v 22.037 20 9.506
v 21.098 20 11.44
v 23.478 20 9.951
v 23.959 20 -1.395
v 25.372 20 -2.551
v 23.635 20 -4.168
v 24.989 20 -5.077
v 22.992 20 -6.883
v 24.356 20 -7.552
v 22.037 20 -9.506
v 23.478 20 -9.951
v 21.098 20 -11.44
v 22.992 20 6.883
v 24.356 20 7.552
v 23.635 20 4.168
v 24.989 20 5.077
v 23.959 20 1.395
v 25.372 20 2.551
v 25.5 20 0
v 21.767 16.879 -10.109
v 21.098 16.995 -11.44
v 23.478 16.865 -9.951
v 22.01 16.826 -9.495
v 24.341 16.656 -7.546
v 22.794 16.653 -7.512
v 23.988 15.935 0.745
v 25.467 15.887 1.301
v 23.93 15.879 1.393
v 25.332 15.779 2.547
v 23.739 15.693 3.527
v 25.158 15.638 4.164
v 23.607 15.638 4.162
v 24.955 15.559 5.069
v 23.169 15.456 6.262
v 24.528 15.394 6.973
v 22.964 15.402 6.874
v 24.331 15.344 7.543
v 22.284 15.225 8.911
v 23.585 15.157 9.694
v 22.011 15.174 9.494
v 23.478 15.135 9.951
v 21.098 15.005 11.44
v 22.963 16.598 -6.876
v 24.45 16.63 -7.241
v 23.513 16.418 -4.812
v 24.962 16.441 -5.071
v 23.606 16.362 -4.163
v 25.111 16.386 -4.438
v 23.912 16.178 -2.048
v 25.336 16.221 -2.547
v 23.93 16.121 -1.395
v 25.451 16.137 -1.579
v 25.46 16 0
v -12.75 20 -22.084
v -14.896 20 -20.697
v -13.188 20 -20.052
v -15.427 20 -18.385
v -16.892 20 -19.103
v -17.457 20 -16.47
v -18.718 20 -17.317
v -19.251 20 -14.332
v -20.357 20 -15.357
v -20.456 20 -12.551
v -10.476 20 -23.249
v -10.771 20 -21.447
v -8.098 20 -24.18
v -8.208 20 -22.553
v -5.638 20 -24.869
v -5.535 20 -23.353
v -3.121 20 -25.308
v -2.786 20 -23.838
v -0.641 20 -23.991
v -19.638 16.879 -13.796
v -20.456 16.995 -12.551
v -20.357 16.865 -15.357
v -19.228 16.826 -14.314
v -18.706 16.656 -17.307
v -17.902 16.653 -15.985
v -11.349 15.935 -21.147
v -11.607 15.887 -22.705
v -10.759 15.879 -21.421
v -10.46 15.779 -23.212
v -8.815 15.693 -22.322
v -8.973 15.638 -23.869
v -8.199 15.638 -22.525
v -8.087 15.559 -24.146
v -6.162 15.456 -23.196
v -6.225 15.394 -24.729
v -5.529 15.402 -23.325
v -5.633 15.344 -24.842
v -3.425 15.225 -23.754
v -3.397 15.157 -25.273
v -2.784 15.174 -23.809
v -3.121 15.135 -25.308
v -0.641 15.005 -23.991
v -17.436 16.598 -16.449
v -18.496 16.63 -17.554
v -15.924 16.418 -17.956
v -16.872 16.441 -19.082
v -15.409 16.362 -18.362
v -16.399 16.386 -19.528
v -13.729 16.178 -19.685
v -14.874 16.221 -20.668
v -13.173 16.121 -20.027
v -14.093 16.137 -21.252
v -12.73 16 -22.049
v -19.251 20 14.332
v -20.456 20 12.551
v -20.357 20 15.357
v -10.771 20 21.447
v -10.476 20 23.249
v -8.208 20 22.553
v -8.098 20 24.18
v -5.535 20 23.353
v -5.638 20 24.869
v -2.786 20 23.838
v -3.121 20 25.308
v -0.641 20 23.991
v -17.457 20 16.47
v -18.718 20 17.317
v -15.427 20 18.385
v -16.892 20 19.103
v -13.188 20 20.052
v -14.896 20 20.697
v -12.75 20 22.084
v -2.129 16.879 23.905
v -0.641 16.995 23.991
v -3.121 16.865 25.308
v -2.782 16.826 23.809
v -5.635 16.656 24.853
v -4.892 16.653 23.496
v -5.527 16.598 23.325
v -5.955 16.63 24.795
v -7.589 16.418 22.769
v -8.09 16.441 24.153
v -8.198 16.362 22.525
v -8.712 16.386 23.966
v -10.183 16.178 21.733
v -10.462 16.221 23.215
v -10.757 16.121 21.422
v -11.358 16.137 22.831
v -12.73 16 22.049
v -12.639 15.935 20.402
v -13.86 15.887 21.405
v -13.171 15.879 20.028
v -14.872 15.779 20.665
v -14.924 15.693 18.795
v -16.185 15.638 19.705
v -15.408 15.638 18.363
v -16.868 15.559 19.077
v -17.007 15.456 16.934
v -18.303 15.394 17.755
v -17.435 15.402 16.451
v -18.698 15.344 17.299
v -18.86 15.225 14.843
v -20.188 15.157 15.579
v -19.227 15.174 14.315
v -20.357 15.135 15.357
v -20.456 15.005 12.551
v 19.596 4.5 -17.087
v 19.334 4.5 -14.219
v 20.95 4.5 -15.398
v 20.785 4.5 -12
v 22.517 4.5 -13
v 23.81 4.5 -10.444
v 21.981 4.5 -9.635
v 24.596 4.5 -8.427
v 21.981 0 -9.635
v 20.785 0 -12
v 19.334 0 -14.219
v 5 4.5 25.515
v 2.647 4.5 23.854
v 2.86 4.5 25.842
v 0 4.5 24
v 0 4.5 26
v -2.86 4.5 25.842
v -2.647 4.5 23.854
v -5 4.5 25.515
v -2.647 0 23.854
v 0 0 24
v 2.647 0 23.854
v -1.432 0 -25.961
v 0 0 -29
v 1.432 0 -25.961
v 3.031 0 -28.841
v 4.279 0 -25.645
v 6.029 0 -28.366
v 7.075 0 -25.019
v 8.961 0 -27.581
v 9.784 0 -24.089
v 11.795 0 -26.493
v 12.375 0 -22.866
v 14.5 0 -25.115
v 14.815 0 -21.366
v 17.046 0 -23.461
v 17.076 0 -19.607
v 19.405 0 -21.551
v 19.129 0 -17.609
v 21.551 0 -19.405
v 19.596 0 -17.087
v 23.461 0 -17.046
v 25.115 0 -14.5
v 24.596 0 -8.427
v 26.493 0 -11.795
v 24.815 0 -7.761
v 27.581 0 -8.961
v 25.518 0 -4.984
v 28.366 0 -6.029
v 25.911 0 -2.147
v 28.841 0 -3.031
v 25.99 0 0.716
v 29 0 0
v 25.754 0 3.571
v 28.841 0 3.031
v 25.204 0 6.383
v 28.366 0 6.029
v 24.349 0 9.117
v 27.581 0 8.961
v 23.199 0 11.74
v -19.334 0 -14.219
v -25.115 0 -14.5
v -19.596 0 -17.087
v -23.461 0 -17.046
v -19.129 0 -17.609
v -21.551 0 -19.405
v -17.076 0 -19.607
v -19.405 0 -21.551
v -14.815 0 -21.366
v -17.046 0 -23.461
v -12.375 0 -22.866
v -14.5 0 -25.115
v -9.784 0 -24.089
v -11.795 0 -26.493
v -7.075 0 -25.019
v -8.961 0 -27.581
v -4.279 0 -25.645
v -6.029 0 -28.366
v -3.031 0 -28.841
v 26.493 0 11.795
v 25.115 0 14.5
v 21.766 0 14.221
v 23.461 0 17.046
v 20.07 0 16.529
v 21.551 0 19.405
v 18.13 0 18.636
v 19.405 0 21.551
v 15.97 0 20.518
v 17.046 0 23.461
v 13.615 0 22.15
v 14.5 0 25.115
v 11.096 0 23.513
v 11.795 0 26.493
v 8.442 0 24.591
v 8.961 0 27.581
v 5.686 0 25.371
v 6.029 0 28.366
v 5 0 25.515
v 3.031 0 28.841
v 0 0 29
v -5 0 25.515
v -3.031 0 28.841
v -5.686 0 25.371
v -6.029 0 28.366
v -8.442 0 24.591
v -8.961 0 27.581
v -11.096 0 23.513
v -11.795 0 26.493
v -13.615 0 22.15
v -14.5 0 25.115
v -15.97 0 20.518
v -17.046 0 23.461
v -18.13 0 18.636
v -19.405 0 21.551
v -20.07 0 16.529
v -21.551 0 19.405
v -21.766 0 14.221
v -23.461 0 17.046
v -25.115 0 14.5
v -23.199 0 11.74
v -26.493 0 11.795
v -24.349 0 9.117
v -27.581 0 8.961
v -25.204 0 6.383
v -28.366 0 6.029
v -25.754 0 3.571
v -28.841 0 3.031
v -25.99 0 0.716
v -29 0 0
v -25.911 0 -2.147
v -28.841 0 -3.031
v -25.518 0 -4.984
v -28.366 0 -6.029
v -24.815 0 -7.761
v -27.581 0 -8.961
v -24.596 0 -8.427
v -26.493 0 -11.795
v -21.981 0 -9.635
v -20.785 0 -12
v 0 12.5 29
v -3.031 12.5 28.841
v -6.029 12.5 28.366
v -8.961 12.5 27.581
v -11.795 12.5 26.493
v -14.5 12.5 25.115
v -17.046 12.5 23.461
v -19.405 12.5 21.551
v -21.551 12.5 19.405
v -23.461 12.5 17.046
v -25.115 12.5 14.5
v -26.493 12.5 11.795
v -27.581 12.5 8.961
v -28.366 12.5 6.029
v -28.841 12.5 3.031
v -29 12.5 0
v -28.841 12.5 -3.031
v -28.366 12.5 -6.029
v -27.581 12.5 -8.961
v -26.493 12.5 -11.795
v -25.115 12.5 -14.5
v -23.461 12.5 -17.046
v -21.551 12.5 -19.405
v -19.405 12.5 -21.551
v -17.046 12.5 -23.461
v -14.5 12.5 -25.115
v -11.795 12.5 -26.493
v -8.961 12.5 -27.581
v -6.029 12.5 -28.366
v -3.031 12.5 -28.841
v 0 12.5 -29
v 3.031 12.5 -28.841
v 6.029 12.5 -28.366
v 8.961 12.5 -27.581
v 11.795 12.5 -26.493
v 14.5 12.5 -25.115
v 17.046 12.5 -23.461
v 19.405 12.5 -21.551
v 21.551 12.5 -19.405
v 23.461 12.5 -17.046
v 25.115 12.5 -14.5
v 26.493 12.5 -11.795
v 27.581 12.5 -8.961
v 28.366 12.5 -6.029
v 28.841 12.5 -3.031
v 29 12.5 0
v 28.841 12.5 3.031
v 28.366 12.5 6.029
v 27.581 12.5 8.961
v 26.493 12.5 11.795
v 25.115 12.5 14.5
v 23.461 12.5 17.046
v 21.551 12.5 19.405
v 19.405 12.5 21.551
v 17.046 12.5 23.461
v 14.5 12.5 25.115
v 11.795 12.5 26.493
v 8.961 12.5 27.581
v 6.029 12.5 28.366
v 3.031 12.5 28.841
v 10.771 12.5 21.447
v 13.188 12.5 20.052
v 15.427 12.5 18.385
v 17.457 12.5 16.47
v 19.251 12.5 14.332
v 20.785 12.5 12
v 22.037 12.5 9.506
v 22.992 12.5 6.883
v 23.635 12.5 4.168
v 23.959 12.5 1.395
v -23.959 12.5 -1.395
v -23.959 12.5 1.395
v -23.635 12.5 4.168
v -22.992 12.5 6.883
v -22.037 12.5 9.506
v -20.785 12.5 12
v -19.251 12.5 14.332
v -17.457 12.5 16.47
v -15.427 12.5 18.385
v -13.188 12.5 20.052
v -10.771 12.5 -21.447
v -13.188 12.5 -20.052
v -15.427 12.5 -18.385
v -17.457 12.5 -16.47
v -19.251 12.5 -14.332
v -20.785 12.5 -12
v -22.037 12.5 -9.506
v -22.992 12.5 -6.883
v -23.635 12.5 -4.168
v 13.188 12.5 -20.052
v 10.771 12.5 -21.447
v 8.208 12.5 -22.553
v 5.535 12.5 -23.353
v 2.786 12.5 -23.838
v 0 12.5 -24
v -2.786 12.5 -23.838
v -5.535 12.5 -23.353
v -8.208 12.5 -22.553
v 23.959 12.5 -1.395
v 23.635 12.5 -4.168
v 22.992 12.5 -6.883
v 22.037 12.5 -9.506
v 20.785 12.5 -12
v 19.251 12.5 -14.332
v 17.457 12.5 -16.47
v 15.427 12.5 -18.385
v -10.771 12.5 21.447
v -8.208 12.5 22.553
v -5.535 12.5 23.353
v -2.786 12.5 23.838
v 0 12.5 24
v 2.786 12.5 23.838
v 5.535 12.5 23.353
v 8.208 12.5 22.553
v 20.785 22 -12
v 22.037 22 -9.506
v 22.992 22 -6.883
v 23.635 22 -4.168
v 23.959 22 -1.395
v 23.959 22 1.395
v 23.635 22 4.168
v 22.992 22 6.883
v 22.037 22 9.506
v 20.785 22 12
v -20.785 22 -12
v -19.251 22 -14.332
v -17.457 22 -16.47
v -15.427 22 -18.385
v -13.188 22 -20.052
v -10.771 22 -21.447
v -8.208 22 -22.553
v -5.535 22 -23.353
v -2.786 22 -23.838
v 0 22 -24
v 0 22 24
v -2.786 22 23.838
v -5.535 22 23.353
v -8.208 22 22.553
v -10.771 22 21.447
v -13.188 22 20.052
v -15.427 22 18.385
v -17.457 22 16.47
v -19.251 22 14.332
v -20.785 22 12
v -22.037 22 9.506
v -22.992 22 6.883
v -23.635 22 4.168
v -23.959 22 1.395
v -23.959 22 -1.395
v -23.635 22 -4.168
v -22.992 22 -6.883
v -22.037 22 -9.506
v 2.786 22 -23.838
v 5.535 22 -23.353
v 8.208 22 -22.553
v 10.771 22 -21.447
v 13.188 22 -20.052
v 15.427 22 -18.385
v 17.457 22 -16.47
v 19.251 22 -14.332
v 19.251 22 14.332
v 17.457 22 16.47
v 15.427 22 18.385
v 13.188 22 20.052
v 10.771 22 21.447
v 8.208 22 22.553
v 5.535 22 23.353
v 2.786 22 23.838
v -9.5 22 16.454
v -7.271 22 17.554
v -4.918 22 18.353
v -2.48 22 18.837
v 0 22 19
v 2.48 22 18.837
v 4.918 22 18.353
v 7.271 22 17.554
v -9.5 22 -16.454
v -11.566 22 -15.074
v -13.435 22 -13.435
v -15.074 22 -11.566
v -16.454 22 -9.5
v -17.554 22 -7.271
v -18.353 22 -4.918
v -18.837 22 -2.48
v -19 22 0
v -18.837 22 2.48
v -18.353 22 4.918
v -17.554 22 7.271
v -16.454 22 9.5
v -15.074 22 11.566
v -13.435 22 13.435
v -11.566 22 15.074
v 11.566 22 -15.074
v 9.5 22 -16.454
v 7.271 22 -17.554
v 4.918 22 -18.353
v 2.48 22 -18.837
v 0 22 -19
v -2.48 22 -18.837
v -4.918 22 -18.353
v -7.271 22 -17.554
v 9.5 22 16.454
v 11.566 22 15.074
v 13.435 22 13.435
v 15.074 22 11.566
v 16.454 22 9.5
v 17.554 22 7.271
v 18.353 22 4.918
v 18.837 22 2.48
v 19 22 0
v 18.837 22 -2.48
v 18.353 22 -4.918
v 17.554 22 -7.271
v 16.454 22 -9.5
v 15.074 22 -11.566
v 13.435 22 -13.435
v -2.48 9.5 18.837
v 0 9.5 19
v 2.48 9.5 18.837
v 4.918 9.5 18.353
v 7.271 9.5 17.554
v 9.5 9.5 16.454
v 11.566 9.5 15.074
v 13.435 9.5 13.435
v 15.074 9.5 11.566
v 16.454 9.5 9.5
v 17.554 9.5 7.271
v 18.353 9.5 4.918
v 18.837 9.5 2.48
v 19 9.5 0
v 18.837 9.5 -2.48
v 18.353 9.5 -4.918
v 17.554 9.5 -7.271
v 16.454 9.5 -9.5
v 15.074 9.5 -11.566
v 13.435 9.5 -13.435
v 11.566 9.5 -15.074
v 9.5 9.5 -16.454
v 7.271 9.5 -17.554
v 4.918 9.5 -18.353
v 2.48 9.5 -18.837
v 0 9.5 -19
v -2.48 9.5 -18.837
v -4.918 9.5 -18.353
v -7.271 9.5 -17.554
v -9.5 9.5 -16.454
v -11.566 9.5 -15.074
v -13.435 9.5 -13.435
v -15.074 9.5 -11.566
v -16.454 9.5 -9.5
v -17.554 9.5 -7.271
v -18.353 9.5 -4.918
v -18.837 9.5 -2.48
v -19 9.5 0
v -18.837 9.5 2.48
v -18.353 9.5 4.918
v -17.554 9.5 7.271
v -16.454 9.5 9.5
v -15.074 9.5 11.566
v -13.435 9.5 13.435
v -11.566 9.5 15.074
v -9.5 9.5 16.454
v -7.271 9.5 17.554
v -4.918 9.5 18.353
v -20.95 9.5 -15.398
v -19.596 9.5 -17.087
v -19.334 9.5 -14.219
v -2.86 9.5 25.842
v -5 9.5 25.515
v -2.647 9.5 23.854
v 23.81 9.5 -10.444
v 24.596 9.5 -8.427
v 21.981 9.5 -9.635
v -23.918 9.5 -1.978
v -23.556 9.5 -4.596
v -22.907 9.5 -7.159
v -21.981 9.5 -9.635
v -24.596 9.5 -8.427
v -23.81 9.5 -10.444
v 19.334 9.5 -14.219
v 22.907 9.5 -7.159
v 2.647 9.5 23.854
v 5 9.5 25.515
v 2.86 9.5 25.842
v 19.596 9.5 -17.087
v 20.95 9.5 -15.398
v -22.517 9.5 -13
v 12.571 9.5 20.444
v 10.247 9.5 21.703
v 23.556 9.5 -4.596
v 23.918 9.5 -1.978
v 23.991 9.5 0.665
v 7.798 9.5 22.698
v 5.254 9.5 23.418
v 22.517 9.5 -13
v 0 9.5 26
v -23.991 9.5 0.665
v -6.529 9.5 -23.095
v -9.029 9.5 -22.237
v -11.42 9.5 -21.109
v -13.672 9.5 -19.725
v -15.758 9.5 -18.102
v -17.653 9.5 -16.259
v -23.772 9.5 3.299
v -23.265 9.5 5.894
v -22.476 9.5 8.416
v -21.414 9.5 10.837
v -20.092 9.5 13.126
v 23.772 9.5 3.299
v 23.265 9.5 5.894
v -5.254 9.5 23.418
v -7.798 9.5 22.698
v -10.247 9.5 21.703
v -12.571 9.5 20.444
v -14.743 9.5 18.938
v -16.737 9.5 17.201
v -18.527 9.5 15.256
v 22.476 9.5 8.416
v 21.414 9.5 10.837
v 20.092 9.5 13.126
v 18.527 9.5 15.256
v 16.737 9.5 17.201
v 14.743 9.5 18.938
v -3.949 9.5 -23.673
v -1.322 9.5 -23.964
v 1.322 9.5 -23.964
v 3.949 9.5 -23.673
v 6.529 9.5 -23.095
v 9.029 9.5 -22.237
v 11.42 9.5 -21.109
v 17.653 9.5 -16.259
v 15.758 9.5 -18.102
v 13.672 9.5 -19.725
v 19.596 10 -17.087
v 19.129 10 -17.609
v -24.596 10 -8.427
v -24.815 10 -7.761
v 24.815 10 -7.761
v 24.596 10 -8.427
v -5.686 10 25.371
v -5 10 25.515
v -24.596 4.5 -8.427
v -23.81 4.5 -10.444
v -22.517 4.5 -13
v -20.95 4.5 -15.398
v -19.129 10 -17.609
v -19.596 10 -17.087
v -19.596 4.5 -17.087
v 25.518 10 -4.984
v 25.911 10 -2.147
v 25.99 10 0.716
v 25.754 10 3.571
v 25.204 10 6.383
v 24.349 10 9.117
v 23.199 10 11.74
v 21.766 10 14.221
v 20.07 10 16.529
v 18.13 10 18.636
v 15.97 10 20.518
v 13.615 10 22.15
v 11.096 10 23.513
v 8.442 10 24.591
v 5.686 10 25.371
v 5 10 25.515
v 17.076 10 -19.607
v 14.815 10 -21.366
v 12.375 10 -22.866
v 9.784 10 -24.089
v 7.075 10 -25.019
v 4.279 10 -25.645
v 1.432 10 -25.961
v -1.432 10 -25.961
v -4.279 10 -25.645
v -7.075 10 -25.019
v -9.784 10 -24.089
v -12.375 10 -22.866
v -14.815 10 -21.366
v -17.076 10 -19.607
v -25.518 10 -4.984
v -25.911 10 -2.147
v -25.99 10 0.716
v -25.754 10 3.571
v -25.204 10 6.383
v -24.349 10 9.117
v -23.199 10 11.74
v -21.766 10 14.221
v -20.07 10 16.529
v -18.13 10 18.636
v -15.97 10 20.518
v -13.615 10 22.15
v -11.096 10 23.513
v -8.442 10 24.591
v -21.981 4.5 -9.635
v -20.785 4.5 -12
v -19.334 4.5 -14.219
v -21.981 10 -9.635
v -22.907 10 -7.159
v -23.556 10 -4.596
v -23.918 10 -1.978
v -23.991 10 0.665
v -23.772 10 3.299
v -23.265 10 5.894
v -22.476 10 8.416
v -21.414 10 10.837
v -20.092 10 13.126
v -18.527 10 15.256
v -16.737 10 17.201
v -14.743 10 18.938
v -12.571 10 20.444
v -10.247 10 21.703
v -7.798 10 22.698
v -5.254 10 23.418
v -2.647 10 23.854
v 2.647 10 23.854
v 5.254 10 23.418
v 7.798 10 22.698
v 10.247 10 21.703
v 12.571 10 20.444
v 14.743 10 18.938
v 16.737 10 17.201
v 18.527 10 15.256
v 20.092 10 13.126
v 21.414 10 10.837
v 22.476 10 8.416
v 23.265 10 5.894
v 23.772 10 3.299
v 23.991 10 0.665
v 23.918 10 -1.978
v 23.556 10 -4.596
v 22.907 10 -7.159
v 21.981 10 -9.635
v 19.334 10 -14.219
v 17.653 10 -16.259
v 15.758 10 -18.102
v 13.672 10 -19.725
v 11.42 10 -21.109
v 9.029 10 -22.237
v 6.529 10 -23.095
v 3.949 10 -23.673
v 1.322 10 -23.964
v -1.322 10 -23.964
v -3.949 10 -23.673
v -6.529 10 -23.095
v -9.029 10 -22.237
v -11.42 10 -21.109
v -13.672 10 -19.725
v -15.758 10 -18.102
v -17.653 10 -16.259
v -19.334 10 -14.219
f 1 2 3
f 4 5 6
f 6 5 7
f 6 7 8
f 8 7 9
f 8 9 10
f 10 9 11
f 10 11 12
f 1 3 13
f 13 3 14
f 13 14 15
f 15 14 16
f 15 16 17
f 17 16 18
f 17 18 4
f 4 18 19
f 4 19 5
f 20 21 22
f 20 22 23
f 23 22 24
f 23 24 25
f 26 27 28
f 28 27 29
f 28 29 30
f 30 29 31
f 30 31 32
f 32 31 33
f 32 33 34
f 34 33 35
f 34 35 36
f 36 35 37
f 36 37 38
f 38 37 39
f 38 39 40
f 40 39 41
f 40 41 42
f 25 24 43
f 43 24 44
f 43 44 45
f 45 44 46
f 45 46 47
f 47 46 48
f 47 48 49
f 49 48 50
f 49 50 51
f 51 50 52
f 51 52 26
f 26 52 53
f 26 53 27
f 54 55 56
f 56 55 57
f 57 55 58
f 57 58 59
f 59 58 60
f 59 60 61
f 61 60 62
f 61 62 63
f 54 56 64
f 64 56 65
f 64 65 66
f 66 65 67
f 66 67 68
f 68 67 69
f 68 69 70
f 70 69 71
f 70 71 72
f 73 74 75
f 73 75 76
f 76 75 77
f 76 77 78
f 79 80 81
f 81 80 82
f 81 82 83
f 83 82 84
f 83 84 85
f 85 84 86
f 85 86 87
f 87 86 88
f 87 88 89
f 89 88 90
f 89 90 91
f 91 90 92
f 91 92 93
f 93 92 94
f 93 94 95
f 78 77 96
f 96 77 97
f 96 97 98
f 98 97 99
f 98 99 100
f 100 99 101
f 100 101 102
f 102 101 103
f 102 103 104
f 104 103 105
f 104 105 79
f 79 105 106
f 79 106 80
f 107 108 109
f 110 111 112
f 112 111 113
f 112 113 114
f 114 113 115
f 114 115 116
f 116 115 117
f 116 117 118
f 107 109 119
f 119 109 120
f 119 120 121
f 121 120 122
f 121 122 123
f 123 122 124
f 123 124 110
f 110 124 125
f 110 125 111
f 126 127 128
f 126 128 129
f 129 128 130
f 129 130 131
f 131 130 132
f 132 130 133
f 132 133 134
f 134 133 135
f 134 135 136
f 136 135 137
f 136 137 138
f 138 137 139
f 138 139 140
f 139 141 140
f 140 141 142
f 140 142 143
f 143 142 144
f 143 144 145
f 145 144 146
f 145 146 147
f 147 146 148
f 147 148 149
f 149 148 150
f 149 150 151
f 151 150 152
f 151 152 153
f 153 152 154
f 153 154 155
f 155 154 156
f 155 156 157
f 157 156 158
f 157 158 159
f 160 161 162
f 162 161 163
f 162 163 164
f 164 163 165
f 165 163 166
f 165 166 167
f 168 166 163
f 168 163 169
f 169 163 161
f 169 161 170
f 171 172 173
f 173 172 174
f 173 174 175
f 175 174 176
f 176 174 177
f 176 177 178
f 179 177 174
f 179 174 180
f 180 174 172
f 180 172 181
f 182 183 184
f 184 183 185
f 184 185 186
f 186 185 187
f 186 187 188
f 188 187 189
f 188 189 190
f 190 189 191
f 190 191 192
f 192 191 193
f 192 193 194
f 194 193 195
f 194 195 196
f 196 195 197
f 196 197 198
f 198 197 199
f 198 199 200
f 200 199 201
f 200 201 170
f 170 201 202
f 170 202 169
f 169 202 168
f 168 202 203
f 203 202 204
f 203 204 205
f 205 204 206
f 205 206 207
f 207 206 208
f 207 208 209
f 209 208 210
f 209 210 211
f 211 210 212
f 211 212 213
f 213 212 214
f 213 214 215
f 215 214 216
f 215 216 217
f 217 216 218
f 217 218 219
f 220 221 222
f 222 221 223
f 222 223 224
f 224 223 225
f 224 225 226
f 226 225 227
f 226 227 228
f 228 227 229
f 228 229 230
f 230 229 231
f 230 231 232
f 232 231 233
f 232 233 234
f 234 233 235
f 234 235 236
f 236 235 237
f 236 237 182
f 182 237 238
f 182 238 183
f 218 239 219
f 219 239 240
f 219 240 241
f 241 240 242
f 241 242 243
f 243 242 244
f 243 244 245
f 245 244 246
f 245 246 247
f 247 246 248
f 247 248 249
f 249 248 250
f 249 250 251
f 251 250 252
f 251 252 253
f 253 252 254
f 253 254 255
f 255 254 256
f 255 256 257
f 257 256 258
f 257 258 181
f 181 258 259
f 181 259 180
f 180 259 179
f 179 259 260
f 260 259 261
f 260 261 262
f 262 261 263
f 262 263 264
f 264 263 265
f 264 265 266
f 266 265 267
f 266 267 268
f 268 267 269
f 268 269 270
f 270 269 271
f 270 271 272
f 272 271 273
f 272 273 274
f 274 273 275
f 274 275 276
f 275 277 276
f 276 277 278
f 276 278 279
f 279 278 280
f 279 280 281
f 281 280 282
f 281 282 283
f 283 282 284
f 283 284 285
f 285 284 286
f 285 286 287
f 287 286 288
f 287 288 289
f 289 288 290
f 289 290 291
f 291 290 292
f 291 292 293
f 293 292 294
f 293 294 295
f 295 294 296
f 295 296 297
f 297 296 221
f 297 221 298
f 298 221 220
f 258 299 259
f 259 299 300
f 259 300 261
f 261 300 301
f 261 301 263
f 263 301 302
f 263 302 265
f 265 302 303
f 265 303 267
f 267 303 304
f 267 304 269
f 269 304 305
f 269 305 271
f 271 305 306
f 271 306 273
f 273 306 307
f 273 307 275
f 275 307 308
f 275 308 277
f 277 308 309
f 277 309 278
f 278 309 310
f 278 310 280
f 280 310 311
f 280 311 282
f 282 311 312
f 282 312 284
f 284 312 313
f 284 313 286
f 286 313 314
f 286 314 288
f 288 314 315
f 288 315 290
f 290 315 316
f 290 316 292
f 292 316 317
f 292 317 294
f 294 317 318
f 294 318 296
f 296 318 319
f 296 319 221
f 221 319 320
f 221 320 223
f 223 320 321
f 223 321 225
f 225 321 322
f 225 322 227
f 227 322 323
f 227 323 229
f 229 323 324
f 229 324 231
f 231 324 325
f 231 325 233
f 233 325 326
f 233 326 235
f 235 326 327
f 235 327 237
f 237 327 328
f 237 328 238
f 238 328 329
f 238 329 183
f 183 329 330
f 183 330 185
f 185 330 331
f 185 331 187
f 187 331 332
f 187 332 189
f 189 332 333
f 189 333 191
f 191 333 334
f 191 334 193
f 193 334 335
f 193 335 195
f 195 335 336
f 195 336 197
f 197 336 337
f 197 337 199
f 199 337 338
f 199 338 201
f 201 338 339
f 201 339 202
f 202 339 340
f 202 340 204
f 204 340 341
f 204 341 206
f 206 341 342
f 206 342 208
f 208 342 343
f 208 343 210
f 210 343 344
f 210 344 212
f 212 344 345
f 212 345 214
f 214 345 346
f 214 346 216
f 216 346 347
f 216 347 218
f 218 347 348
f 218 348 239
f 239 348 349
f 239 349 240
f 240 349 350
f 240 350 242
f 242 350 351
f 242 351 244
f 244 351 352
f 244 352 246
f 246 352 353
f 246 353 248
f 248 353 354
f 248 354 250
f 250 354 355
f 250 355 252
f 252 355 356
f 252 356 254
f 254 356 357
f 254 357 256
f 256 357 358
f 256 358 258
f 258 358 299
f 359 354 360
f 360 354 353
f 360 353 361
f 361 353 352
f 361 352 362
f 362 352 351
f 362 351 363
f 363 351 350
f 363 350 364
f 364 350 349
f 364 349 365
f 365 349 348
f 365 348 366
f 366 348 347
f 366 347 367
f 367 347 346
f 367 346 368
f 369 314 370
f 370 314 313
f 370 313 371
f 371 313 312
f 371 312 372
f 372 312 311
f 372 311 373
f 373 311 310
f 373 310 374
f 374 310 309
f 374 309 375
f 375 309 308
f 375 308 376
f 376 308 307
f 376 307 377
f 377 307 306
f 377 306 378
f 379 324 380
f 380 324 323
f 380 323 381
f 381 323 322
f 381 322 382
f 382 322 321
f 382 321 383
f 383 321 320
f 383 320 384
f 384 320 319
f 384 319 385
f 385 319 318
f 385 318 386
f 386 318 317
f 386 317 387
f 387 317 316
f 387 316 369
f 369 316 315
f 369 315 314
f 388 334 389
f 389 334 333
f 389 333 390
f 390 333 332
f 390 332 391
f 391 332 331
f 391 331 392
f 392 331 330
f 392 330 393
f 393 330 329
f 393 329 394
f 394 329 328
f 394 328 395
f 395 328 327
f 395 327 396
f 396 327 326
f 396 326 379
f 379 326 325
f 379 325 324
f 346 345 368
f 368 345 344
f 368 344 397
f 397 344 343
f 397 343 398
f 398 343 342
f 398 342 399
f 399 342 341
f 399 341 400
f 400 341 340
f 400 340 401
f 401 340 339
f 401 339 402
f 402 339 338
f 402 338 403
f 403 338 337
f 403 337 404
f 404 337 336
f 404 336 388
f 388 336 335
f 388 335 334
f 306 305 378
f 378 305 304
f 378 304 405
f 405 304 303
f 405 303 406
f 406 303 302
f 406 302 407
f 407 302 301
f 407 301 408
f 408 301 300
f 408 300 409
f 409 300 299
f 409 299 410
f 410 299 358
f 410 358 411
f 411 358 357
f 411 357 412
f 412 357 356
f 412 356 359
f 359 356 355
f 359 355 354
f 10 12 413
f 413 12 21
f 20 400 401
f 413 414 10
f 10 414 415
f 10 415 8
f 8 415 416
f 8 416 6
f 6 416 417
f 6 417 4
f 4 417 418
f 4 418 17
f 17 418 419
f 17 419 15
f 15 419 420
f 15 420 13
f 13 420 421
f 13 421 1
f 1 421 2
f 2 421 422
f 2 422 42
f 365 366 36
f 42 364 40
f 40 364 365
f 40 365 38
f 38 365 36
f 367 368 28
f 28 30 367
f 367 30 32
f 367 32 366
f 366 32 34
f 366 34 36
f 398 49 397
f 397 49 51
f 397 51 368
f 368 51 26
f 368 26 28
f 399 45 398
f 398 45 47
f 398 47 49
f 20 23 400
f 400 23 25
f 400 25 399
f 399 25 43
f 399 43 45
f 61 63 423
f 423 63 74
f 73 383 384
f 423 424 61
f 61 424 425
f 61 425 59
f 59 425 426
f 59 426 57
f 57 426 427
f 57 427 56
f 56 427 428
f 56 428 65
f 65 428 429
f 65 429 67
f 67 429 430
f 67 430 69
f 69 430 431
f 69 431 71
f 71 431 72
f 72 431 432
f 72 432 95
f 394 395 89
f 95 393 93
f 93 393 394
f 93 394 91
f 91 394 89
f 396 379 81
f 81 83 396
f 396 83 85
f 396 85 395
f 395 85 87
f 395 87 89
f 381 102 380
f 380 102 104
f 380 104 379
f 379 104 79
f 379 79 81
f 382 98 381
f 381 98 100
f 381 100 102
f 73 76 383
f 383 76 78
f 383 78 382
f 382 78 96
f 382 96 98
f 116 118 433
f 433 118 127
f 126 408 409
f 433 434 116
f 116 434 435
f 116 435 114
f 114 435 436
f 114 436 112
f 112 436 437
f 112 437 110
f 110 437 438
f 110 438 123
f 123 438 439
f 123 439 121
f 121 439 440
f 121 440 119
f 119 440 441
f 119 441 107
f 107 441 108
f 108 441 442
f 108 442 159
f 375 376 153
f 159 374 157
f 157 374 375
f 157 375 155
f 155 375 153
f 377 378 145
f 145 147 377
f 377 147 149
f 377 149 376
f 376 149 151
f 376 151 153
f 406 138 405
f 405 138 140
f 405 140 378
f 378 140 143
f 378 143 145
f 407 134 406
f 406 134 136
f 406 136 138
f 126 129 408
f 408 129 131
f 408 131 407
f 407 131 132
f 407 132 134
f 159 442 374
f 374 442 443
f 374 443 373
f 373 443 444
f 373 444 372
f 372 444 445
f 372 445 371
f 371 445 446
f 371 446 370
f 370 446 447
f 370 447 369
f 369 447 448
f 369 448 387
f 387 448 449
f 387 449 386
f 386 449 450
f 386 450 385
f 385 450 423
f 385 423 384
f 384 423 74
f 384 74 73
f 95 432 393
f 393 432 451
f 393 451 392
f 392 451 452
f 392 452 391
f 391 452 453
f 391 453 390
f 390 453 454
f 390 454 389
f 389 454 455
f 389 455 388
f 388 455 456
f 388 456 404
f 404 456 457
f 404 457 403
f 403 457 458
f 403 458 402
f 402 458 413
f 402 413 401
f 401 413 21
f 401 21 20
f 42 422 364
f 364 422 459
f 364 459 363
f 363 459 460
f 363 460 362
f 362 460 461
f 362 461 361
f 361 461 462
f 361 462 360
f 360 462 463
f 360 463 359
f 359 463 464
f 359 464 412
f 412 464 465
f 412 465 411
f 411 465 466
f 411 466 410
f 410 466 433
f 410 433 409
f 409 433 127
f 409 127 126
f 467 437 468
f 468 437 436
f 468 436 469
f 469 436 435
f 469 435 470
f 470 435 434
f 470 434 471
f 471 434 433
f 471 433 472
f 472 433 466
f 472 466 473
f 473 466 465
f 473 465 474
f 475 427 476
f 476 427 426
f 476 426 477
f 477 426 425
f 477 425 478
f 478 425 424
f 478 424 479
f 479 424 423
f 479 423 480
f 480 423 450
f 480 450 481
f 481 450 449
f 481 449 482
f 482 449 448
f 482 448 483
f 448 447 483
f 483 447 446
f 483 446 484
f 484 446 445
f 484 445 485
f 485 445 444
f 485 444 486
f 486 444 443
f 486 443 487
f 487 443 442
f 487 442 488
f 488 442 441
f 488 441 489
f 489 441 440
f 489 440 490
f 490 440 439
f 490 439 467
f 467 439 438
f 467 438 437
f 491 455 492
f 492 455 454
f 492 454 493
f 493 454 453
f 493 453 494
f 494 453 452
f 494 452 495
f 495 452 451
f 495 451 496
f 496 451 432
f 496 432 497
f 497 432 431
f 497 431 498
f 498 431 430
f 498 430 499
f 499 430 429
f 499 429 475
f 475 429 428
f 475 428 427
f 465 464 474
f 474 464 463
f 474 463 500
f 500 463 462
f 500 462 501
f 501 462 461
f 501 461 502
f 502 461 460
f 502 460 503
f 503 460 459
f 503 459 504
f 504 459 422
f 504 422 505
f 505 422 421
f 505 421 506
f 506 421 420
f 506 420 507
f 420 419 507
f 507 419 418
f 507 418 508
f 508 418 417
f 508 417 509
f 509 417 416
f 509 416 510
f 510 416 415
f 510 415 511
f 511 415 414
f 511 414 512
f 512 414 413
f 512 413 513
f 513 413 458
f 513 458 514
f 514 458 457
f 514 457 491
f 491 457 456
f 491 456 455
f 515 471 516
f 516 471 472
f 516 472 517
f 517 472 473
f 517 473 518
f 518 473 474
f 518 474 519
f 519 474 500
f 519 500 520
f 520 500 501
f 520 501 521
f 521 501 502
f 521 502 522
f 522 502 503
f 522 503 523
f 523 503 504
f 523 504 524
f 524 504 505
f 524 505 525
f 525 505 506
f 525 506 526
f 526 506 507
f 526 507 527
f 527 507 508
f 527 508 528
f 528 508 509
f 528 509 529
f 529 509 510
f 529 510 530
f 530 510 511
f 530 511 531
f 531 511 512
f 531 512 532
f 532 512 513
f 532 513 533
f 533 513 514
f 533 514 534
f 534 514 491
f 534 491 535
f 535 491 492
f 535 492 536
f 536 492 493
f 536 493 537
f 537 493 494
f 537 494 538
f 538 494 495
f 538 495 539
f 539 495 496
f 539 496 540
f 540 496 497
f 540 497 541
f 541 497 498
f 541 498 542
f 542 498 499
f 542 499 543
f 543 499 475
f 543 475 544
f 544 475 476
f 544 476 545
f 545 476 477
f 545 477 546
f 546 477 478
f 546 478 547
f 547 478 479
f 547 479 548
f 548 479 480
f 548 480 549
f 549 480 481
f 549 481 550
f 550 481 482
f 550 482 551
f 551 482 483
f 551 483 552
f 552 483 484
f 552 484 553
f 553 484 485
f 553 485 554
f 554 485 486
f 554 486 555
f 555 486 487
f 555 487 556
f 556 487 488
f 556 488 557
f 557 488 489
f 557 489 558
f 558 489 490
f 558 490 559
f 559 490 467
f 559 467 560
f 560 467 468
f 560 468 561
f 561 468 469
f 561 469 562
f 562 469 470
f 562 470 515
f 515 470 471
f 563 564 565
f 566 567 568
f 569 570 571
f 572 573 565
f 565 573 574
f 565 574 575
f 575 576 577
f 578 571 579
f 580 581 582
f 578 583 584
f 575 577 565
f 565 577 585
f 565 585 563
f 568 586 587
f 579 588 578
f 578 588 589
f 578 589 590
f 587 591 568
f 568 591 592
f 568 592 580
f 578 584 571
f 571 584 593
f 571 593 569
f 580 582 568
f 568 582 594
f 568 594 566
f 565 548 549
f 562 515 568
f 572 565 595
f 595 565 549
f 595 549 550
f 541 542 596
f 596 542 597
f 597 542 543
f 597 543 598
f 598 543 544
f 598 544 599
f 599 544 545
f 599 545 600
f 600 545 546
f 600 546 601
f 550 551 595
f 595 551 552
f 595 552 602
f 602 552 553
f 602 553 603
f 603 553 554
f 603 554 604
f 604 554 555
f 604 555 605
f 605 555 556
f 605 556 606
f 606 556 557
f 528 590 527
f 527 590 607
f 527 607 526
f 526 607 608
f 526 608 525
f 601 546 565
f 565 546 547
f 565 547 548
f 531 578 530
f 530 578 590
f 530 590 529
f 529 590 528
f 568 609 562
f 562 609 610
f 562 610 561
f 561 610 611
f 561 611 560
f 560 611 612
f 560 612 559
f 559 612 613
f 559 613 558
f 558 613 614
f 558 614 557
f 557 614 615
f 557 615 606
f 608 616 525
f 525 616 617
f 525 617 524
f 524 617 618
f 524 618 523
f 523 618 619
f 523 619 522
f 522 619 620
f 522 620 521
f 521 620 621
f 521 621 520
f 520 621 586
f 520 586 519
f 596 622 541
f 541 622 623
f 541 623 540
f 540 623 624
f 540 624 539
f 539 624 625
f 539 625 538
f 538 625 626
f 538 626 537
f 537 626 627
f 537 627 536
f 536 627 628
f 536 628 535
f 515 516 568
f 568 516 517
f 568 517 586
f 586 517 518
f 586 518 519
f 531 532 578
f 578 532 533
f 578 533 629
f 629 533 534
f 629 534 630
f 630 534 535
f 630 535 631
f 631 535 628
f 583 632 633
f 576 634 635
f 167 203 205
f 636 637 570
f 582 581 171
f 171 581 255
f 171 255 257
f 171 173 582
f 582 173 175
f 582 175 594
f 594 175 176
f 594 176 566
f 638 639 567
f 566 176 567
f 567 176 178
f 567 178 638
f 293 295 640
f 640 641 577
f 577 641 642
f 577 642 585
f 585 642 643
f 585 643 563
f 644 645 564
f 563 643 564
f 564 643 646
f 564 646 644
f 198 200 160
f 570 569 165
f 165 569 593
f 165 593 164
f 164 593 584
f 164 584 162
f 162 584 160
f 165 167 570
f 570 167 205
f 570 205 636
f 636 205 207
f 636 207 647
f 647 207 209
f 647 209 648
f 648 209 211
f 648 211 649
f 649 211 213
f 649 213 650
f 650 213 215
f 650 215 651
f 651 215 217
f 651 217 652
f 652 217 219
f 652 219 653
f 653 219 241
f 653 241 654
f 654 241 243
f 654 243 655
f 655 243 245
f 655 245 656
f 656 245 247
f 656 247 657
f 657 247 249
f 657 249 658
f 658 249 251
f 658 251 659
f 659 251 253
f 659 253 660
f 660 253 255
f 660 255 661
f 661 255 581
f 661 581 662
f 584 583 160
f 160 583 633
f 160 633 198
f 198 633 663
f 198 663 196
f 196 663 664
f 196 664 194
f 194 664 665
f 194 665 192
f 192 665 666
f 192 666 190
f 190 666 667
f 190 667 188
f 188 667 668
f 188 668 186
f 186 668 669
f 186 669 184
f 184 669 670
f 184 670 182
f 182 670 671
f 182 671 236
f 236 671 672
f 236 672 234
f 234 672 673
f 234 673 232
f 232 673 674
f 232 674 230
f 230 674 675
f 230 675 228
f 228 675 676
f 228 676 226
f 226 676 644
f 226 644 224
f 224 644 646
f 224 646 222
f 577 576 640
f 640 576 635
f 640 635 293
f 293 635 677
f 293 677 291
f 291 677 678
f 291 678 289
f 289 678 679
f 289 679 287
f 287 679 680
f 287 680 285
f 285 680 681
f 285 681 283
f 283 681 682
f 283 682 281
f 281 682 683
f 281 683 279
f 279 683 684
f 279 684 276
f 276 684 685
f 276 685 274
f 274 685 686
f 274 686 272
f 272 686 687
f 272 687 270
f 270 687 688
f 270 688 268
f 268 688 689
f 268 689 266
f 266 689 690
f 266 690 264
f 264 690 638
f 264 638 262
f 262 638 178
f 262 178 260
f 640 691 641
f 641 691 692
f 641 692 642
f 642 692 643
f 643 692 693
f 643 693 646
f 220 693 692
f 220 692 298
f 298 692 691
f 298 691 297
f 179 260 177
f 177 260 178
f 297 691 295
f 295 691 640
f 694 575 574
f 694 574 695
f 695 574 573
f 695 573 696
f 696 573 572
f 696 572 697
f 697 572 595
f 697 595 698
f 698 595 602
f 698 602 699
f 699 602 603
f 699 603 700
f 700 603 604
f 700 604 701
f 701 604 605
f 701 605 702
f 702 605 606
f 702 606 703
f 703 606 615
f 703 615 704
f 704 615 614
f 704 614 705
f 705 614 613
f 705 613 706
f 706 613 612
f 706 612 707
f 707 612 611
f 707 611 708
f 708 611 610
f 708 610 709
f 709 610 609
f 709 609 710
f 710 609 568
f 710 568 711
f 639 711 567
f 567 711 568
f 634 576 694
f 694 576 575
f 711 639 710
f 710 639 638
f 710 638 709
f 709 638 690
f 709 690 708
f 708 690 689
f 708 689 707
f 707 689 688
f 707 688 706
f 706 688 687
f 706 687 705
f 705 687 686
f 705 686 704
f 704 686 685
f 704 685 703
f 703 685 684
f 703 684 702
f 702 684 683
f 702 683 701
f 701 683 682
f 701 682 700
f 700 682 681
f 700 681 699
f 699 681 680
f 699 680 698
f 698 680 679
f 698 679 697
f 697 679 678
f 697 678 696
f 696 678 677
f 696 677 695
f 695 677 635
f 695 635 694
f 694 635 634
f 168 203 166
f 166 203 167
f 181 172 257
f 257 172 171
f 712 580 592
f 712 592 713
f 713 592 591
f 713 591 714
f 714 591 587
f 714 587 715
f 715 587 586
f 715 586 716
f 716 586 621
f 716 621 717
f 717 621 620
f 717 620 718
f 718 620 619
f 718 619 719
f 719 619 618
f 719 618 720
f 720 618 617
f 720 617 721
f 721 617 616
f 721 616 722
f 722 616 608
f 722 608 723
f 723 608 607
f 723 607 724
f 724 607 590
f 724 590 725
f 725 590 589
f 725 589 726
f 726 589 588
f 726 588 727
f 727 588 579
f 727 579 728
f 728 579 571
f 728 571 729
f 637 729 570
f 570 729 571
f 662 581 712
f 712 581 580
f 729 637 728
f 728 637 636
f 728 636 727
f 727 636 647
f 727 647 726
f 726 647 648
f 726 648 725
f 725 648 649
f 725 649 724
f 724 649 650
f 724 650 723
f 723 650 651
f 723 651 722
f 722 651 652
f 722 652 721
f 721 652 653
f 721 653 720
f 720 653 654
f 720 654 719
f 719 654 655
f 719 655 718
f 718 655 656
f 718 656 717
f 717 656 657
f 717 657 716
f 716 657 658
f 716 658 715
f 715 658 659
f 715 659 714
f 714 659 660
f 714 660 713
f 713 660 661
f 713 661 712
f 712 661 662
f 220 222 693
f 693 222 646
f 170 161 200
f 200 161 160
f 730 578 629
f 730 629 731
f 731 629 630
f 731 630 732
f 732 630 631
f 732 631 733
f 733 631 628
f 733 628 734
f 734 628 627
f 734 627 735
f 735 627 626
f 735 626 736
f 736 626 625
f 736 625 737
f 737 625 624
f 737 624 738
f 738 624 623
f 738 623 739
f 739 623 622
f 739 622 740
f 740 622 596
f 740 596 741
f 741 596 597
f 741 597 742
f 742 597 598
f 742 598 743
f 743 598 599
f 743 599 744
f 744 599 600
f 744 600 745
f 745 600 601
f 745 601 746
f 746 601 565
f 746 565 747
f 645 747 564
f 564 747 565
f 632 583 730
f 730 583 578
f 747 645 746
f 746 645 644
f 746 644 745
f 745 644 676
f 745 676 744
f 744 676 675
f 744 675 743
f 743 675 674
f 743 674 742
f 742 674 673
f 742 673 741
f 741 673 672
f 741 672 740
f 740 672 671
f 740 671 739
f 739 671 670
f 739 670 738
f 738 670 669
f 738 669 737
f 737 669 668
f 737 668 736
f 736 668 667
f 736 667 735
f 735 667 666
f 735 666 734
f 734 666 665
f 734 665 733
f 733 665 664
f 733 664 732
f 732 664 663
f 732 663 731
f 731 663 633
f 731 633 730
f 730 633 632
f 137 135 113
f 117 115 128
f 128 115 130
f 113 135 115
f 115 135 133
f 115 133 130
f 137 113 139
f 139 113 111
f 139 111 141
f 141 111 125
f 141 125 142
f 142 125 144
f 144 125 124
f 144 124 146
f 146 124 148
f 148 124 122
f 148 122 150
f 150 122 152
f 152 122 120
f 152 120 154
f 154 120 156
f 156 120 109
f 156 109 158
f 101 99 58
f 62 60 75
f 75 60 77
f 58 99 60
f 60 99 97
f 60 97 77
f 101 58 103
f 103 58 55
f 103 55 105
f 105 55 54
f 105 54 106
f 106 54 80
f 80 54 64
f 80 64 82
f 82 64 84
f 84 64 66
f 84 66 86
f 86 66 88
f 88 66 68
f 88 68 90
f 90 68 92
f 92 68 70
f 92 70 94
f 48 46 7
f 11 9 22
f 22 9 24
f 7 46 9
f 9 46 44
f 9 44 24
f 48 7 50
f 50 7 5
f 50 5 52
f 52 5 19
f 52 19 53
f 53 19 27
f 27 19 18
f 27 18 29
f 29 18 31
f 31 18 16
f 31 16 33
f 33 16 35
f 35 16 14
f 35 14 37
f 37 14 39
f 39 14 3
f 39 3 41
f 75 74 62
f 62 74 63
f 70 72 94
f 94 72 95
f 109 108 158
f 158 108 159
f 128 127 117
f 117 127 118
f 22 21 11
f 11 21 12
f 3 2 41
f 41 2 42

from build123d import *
from build123d.topology import SkipClean

# Parameters (mm, degrees)
CUT_EXTRUDE_START        = -10
CUT_EXTRUDE_1_DEPTH      = 10
EXTRUDE_1_DEPTH          = 6
PATTERN_CIRCULAR_1_COUNT = 3
SKETCH_4_R               = 42.404307435
SKETCH_4_R_2             = 25.5
CUT_EXTRUDE_2_DEPTH      = 9.5
CHAMFER_START            = 14
CHAMFER_1_DEPTH          = 6


with BuildPart() as part:
    # Эскиз1 → Повернуть1 (revolve)
    with BuildSketch(Plane.XY, mode=Mode.PRIVATE) as revolve_1_sk:
        Polygon((-24, 0), (-24, 4.5), (-26, 4.5), (-26, 9.5), (-19, 9.5), (-19, 22), (-24, 22), (-24, 12.5), (-29, 12.5), (-29, 0), align=None)
    revolve(revolve_1_sk.sketch.rotate(Axis((0, 0, 0), (0, -1, 0)), 270), axis=Axis((0, 0, 0), (0, -1, 0)))

    # Эскиз2 → Вырез-Вытянуть1 (cut)
    with SkipClean():  # the faces are left unmerged after this step: merging them gives an invalid solid
        with BuildSketch(Plane(origin=(0, 0, 0), x_dir=(-1, 0, 0), z_dir=(0, -1, 0)).offset(CUT_EXTRUDE_START)):
            with BuildLine():
                ThreePointArc((24, 0), (17.8818714, -16.007456864), (2.646777063, -23.85360709))
                Line((2.646777063, -23.85360709), (5, -25.514701644))
                ThreePointArc((5, -25.514701644), (20.0748599, -16.522711642), (26, 0))
                ThreePointArc((26, 0), (25.646694472, 4.271658071), (24.596379794, 8.427223803))
                Line((24.596379794, 8.427223803), (21.981218243, 9.63462737))
                ThreePointArc((21.981218243, 9.63462737), (23.489883331, 4.921928594), (24, 0))
            make_face()
            with BuildLine():
                Line((-5, -25.514701644), (-2.646777063, -23.85360709))
                ThreePointArc((-2.646777063, -23.85360709), (-20.784609691, -12), (-21.981218243, 9.63462737))
                Line((-21.981218243, 9.63462737), (-24.596379794, 8.427223803))
                ThreePointArc((-24.596379794, 8.427223803), (-22.516660498, -13), (-5, -25.514701644))
            make_face()
            with BuildLine():
                Line((-19.596379794, 17.087477841), (-19.33444118, 14.218979719))
                ThreePointArc((-19.33444118, 14.218979719), (0, 24), (19.33444118, 14.218979719))
                Line((19.33444118, 14.218979719), (19.596379794, 17.087477841))
                ThreePointArc((19.596379794, 17.087477841), (0, 26), (-19.596379794, 17.087477841))
            make_face()
        extrude(amount=CUT_EXTRUDE_1_DEPTH, mode=Mode.SUBTRACT)

    # Эскиз3 → Бобышка-Вытянуть1 (add)
    with SkipClean():  # the faces are left unmerged after this step: merging them gives an invalid solid
        with BuildSketch(Plane(origin=(25.5, 0, 0), x_dir=(0, 0, -1), z_dir=(1, 0, 0))):
            Polygon((-11.5, 20), (11.5, 20), (11.5, 17), (-11.5, 15), align=None)
        extrude_1 = extrude(amount=-EXTRUDE_1_DEPTH)

    # Круговой массив1: Бобышка-Вытянуть1 ×3 about axis
    with SkipClean():  # the faces are left unmerged after this step: merging them gives an invalid solid
        pattern_circular_1_axis = Axis((0, 0, 0), (0, 1, 0))
        for i in range(1, PATTERN_CIRCULAR_1_COUNT):
            add(extrude_1.rotate(pattern_circular_1_axis, i * 360 / PATTERN_CIRCULAR_1_COUNT))

    # Эскиз4 → Вырез-Вытянуть2 (cut)
    with SkipClean():  # the faces are left unmerged after this step: merging them gives an invalid solid
        with BuildSketch(Plane(origin=(0, 22, 0), x_dir=(1, 0, 0), z_dir=(0, 1, 0))):
            Circle(SKETCH_4_R)
            Circle(SKETCH_4_R_2, mode=Mode.SUBTRACT)
        extrude(amount=-CUT_EXTRUDE_2_DEPTH, mode=Mode.SUBTRACT)

    # Фаска1: read off the stored shape, not the designer's step
    # Фаска1 outline → Фаска1 (cut)
    with SkipClean():  # the faces are left unmerged after this step: merging them gives an invalid solid
        with BuildSketch(Plane(origin=(0, 0, 0), x_dir=(1, 0, 0), z_dir=(0, 1, 0)).offset(CHAMFER_START)):
            with BuildLine():
                Line((-20.456443185, 12.551252218), (-20.356857991, 15.357354354))
                ThreePointArc((-20.356857991, 15.357354354), (-20.859675731, 14.667103612), (-21.33909882, 13.960403344))
                Line((-21.33909882, 13.960403344), (-20.49197936, 12.493149399))
                ThreePointArc((-20.49197936, 12.493149399), (-20.474231883, 12.522213414), (-20.456443185, 12.551252218))
            make_face()
            with BuildLine():
                ThreePointArc((-1.420514533, 25.460403344), (-2.272246462, 25.398560904), (-3.12143001, 25.308233338))
                Line((-3.12143001, 25.308233338), (-0.641481678, 23.991425578))
                ThreePointArc((-0.641481678, 23.991425578), (-0.607438987, 23.992311641), (-0.573395073, 23.993149399))
                Line((-0.573395073, 23.993149399), (-1.420514533, 25.460403344))
            make_face()
            with BuildLine():
                ThreePointArc((-20.456443185, -12.551252218), (-20.474231883, -12.522213414), (-20.49197936, -12.493149399))
                Line((-20.49197936, -12.493149399), (-21.33909882, -13.960403344))
                ThreePointArc((-21.33909882, -13.960403344), (-20.859675731, -14.667103612), (-20.356857991, -15.357354354))
                Line((-20.356857991, -15.357354354), (-20.456443185, -12.551252218))
            make_face()
            with BuildLine():
                Line((22.759613353, 11.5), (21.065374433, 11.5))
                ThreePointArc((21.065374433, 11.5), (21.08167087, 11.470098227), (21.097924862, 11.44017336))
                Line((21.097924862, 11.44017336), (23.478288, 9.950878984))
                ThreePointArc((23.478288, 9.950878984), (23.131922194, 10.731457292), (22.759613353, 11.5))
            make_face()
            with BuildLine():
                ThreePointArc((-0.573395073, -23.993149399), (-0.607438987, -23.992311641), (-0.641481678, -23.991425578))
                Line((-0.641481678, -23.991425578), (-3.12143001, -25.308233338))
                ThreePointArc((-3.12143001, -25.308233338), (-2.272246462, -25.398560904), (-1.420514533, -25.460403344))
                Line((-1.420514533, -25.460403344), (-0.573395073, -23.993149399))
            make_face()
            with BuildLine():
                ThreePointArc((22.759613353, -11.5), (23.131922194, -10.731457292), (23.478288, -9.950878984))
                Line((23.478288, -9.950878984), (21.097924862, -11.44017336))
                ThreePointArc((21.097924862, -11.44017336), (21.08167087, -11.470098227), (21.065374433, -11.5))
                Line((21.065374433, -11.5), (22.759613353, -11.5))
            make_face()
        extrude(amount=CHAMFER_1_DEPTH, mode=Mode.SUBTRACT)


solid = part.part
